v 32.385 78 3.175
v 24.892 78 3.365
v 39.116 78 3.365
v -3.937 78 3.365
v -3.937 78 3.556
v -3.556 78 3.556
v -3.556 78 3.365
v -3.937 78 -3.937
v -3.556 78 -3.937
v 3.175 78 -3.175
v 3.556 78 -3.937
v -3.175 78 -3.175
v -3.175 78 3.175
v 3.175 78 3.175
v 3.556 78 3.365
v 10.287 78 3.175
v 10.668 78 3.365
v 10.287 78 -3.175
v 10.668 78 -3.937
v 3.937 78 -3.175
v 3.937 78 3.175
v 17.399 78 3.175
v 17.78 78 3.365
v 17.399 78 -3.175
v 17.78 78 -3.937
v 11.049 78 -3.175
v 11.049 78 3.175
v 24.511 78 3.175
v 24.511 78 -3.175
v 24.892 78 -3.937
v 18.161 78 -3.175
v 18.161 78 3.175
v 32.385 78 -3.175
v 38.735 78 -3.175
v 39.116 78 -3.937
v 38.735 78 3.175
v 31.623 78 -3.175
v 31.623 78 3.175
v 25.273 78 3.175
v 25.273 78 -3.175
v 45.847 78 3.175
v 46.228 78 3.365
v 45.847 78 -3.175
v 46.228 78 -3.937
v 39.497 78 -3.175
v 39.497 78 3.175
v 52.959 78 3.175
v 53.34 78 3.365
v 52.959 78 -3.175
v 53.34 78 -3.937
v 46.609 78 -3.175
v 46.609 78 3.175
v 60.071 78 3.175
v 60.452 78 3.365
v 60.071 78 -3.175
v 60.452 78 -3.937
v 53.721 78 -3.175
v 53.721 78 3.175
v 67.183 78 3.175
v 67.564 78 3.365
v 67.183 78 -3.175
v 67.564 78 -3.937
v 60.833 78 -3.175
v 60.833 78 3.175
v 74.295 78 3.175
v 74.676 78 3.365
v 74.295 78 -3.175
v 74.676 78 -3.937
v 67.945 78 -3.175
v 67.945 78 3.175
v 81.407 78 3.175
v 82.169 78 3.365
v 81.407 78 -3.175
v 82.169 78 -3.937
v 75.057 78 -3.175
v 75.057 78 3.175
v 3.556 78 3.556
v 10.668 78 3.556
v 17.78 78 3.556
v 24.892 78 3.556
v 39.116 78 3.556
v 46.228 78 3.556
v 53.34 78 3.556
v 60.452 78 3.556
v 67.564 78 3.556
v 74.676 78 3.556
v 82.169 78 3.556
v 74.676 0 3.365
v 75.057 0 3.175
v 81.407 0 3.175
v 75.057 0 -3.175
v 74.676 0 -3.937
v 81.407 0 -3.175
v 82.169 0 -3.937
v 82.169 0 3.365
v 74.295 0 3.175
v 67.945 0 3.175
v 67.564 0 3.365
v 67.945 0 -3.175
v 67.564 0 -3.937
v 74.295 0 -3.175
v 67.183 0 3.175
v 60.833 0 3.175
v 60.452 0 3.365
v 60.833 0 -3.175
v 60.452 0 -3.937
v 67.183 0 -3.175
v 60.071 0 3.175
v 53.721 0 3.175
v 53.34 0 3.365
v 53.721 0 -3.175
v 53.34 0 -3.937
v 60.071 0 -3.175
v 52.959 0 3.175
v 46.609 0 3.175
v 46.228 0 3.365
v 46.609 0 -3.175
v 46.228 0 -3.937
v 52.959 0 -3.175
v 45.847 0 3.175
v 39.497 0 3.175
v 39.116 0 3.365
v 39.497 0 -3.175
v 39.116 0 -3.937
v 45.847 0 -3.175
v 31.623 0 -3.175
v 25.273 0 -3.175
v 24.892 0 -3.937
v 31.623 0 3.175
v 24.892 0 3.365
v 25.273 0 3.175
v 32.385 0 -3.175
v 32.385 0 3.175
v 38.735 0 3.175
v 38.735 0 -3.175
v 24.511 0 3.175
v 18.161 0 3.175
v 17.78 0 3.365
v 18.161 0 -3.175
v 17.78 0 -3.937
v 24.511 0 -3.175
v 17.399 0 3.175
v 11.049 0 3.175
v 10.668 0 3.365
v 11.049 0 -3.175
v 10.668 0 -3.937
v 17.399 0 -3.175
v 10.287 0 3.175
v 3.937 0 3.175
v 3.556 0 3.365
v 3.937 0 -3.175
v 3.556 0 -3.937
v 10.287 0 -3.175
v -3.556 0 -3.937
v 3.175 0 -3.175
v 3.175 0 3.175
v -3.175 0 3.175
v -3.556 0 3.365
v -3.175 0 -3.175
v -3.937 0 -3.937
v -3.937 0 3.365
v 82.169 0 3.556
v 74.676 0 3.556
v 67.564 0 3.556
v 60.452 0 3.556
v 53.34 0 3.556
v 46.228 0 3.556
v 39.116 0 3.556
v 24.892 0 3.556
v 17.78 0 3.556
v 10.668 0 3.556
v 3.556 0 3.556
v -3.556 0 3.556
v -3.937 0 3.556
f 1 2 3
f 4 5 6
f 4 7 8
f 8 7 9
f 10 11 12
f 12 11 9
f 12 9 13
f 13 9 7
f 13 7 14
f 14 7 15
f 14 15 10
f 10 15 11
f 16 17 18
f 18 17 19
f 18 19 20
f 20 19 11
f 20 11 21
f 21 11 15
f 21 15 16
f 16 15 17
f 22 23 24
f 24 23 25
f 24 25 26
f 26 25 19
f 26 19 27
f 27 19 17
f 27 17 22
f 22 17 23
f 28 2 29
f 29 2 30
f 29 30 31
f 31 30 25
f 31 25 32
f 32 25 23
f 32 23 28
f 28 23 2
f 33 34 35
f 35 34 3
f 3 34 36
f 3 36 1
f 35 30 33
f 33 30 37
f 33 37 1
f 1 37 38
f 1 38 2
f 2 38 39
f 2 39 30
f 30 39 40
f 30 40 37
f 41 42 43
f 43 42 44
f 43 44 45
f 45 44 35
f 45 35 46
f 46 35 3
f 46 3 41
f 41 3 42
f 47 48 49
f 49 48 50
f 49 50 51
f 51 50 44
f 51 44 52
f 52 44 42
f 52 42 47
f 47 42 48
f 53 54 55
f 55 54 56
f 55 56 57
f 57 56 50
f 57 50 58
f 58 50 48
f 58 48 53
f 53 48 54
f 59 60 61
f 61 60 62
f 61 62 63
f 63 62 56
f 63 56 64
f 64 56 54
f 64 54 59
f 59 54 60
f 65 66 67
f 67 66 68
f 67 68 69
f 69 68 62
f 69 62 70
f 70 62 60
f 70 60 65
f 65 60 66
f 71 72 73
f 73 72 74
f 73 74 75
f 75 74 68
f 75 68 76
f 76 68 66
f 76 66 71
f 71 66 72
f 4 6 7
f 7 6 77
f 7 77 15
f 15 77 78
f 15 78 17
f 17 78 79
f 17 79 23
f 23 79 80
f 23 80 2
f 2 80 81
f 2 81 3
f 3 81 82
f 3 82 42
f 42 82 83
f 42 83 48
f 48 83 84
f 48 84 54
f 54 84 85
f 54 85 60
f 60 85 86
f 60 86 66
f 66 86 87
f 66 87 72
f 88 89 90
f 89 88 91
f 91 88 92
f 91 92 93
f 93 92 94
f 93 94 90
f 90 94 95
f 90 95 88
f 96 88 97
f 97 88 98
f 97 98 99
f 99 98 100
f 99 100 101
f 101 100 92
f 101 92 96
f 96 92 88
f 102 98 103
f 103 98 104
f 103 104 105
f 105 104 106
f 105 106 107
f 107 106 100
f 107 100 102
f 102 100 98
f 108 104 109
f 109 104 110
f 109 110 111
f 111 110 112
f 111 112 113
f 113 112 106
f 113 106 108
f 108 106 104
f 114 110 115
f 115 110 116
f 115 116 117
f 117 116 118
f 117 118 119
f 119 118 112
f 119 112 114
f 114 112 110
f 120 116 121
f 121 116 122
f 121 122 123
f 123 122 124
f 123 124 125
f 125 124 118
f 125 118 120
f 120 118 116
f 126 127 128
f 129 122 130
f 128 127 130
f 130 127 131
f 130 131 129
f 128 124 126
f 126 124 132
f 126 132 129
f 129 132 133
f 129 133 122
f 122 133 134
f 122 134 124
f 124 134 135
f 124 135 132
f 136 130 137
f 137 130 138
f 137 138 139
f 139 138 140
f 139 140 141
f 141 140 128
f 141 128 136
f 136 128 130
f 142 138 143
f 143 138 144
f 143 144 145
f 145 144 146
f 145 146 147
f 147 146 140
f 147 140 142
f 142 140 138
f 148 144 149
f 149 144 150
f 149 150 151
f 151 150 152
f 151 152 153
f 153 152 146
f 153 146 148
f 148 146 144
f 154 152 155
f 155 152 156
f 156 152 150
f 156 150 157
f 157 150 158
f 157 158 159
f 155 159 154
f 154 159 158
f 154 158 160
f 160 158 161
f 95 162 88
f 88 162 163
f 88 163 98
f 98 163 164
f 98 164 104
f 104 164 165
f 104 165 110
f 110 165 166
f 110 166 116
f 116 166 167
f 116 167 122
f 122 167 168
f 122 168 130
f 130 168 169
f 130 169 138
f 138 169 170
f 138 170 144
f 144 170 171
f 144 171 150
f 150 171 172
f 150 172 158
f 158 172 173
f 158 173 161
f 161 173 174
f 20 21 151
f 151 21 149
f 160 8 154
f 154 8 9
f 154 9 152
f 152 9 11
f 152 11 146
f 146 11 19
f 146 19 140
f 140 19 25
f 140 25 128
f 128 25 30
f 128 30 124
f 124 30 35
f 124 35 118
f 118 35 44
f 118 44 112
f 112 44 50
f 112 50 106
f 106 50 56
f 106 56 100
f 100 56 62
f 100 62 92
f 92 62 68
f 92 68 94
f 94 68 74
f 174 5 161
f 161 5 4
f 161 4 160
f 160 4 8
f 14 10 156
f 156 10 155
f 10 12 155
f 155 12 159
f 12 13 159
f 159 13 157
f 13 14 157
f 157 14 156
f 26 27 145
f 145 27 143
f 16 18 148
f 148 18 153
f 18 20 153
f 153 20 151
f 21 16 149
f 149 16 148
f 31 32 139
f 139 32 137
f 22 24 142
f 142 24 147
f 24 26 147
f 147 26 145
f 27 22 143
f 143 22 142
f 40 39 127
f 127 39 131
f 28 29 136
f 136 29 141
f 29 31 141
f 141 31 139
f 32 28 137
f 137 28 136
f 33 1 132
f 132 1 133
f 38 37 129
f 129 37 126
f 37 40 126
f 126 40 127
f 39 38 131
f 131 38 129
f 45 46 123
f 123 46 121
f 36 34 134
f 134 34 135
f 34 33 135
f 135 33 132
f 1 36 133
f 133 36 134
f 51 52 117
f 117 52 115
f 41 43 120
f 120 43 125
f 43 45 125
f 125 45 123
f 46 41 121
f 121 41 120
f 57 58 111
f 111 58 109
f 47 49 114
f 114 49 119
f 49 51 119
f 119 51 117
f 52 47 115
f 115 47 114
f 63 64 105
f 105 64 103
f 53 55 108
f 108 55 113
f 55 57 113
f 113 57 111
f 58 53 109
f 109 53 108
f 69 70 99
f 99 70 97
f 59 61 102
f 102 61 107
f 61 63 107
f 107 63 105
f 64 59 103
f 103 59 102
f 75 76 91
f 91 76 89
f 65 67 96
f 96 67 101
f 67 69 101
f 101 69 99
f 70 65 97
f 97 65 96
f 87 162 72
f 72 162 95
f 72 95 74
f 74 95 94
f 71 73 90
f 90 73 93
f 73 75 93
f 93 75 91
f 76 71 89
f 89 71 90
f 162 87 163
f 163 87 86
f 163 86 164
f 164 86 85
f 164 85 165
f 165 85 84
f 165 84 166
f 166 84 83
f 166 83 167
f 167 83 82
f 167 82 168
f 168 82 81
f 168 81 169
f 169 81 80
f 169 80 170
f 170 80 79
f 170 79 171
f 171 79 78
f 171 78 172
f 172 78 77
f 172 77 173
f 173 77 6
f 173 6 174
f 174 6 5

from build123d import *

# Parameters (mm, degrees)
SKETCH1_W           = 7.874
SKETCH1_H           = 7.874
SKETCH1_W_2         = 6.35
SKETCH1_H_2         = 6.35
BOSS_EXTRUDE1_DEPTH = 77.999999194
LPATTERN1_COUNT     = 12
LPATTERN1_PITCH     = 7.112
CUT_EXTRUDE1_START  = 3.937
SKETCH3_W           = 86.106
SKETCH3_H           = 77.999999194
CUT_EXTRUDE1_DEPTH  = 0.381


with BuildPart() as part:
    # Sketch1 → Boss-Extrude1 (new body)
    with BuildSketch(Plane(origin=(0, 0, 0), x_dir=(1, 0, 0), z_dir=(0, 1, 0))):
        Rectangle(SKETCH1_W, SKETCH1_H)
        Rectangle(SKETCH1_W_2, SKETCH1_H_2, mode=Mode.SUBTRACT)
    boss_extrude1 = extrude(amount=BOSS_EXTRUDE1_DEPTH)

    # LPattern1: Boss-Extrude1 ×12
    with Locations(*[(i * LPATTERN1_PITCH, 0, 0) for i in range(1, LPATTERN1_COUNT)]):
        add(boss_extrude1)

    # Sketch3 → Cut-Extrude1 (cut)
    with BuildSketch(Plane.XY.offset(CUT_EXTRUDE1_START)):
        with Locations((39.116, 38.999999597)):
            Rectangle(SKETCH3_W, SKETCH3_H)
    extrude(amount=-CUT_EXTRUDE1_DEPTH, mode=Mode.SUBTRACT)


solid = part.part
